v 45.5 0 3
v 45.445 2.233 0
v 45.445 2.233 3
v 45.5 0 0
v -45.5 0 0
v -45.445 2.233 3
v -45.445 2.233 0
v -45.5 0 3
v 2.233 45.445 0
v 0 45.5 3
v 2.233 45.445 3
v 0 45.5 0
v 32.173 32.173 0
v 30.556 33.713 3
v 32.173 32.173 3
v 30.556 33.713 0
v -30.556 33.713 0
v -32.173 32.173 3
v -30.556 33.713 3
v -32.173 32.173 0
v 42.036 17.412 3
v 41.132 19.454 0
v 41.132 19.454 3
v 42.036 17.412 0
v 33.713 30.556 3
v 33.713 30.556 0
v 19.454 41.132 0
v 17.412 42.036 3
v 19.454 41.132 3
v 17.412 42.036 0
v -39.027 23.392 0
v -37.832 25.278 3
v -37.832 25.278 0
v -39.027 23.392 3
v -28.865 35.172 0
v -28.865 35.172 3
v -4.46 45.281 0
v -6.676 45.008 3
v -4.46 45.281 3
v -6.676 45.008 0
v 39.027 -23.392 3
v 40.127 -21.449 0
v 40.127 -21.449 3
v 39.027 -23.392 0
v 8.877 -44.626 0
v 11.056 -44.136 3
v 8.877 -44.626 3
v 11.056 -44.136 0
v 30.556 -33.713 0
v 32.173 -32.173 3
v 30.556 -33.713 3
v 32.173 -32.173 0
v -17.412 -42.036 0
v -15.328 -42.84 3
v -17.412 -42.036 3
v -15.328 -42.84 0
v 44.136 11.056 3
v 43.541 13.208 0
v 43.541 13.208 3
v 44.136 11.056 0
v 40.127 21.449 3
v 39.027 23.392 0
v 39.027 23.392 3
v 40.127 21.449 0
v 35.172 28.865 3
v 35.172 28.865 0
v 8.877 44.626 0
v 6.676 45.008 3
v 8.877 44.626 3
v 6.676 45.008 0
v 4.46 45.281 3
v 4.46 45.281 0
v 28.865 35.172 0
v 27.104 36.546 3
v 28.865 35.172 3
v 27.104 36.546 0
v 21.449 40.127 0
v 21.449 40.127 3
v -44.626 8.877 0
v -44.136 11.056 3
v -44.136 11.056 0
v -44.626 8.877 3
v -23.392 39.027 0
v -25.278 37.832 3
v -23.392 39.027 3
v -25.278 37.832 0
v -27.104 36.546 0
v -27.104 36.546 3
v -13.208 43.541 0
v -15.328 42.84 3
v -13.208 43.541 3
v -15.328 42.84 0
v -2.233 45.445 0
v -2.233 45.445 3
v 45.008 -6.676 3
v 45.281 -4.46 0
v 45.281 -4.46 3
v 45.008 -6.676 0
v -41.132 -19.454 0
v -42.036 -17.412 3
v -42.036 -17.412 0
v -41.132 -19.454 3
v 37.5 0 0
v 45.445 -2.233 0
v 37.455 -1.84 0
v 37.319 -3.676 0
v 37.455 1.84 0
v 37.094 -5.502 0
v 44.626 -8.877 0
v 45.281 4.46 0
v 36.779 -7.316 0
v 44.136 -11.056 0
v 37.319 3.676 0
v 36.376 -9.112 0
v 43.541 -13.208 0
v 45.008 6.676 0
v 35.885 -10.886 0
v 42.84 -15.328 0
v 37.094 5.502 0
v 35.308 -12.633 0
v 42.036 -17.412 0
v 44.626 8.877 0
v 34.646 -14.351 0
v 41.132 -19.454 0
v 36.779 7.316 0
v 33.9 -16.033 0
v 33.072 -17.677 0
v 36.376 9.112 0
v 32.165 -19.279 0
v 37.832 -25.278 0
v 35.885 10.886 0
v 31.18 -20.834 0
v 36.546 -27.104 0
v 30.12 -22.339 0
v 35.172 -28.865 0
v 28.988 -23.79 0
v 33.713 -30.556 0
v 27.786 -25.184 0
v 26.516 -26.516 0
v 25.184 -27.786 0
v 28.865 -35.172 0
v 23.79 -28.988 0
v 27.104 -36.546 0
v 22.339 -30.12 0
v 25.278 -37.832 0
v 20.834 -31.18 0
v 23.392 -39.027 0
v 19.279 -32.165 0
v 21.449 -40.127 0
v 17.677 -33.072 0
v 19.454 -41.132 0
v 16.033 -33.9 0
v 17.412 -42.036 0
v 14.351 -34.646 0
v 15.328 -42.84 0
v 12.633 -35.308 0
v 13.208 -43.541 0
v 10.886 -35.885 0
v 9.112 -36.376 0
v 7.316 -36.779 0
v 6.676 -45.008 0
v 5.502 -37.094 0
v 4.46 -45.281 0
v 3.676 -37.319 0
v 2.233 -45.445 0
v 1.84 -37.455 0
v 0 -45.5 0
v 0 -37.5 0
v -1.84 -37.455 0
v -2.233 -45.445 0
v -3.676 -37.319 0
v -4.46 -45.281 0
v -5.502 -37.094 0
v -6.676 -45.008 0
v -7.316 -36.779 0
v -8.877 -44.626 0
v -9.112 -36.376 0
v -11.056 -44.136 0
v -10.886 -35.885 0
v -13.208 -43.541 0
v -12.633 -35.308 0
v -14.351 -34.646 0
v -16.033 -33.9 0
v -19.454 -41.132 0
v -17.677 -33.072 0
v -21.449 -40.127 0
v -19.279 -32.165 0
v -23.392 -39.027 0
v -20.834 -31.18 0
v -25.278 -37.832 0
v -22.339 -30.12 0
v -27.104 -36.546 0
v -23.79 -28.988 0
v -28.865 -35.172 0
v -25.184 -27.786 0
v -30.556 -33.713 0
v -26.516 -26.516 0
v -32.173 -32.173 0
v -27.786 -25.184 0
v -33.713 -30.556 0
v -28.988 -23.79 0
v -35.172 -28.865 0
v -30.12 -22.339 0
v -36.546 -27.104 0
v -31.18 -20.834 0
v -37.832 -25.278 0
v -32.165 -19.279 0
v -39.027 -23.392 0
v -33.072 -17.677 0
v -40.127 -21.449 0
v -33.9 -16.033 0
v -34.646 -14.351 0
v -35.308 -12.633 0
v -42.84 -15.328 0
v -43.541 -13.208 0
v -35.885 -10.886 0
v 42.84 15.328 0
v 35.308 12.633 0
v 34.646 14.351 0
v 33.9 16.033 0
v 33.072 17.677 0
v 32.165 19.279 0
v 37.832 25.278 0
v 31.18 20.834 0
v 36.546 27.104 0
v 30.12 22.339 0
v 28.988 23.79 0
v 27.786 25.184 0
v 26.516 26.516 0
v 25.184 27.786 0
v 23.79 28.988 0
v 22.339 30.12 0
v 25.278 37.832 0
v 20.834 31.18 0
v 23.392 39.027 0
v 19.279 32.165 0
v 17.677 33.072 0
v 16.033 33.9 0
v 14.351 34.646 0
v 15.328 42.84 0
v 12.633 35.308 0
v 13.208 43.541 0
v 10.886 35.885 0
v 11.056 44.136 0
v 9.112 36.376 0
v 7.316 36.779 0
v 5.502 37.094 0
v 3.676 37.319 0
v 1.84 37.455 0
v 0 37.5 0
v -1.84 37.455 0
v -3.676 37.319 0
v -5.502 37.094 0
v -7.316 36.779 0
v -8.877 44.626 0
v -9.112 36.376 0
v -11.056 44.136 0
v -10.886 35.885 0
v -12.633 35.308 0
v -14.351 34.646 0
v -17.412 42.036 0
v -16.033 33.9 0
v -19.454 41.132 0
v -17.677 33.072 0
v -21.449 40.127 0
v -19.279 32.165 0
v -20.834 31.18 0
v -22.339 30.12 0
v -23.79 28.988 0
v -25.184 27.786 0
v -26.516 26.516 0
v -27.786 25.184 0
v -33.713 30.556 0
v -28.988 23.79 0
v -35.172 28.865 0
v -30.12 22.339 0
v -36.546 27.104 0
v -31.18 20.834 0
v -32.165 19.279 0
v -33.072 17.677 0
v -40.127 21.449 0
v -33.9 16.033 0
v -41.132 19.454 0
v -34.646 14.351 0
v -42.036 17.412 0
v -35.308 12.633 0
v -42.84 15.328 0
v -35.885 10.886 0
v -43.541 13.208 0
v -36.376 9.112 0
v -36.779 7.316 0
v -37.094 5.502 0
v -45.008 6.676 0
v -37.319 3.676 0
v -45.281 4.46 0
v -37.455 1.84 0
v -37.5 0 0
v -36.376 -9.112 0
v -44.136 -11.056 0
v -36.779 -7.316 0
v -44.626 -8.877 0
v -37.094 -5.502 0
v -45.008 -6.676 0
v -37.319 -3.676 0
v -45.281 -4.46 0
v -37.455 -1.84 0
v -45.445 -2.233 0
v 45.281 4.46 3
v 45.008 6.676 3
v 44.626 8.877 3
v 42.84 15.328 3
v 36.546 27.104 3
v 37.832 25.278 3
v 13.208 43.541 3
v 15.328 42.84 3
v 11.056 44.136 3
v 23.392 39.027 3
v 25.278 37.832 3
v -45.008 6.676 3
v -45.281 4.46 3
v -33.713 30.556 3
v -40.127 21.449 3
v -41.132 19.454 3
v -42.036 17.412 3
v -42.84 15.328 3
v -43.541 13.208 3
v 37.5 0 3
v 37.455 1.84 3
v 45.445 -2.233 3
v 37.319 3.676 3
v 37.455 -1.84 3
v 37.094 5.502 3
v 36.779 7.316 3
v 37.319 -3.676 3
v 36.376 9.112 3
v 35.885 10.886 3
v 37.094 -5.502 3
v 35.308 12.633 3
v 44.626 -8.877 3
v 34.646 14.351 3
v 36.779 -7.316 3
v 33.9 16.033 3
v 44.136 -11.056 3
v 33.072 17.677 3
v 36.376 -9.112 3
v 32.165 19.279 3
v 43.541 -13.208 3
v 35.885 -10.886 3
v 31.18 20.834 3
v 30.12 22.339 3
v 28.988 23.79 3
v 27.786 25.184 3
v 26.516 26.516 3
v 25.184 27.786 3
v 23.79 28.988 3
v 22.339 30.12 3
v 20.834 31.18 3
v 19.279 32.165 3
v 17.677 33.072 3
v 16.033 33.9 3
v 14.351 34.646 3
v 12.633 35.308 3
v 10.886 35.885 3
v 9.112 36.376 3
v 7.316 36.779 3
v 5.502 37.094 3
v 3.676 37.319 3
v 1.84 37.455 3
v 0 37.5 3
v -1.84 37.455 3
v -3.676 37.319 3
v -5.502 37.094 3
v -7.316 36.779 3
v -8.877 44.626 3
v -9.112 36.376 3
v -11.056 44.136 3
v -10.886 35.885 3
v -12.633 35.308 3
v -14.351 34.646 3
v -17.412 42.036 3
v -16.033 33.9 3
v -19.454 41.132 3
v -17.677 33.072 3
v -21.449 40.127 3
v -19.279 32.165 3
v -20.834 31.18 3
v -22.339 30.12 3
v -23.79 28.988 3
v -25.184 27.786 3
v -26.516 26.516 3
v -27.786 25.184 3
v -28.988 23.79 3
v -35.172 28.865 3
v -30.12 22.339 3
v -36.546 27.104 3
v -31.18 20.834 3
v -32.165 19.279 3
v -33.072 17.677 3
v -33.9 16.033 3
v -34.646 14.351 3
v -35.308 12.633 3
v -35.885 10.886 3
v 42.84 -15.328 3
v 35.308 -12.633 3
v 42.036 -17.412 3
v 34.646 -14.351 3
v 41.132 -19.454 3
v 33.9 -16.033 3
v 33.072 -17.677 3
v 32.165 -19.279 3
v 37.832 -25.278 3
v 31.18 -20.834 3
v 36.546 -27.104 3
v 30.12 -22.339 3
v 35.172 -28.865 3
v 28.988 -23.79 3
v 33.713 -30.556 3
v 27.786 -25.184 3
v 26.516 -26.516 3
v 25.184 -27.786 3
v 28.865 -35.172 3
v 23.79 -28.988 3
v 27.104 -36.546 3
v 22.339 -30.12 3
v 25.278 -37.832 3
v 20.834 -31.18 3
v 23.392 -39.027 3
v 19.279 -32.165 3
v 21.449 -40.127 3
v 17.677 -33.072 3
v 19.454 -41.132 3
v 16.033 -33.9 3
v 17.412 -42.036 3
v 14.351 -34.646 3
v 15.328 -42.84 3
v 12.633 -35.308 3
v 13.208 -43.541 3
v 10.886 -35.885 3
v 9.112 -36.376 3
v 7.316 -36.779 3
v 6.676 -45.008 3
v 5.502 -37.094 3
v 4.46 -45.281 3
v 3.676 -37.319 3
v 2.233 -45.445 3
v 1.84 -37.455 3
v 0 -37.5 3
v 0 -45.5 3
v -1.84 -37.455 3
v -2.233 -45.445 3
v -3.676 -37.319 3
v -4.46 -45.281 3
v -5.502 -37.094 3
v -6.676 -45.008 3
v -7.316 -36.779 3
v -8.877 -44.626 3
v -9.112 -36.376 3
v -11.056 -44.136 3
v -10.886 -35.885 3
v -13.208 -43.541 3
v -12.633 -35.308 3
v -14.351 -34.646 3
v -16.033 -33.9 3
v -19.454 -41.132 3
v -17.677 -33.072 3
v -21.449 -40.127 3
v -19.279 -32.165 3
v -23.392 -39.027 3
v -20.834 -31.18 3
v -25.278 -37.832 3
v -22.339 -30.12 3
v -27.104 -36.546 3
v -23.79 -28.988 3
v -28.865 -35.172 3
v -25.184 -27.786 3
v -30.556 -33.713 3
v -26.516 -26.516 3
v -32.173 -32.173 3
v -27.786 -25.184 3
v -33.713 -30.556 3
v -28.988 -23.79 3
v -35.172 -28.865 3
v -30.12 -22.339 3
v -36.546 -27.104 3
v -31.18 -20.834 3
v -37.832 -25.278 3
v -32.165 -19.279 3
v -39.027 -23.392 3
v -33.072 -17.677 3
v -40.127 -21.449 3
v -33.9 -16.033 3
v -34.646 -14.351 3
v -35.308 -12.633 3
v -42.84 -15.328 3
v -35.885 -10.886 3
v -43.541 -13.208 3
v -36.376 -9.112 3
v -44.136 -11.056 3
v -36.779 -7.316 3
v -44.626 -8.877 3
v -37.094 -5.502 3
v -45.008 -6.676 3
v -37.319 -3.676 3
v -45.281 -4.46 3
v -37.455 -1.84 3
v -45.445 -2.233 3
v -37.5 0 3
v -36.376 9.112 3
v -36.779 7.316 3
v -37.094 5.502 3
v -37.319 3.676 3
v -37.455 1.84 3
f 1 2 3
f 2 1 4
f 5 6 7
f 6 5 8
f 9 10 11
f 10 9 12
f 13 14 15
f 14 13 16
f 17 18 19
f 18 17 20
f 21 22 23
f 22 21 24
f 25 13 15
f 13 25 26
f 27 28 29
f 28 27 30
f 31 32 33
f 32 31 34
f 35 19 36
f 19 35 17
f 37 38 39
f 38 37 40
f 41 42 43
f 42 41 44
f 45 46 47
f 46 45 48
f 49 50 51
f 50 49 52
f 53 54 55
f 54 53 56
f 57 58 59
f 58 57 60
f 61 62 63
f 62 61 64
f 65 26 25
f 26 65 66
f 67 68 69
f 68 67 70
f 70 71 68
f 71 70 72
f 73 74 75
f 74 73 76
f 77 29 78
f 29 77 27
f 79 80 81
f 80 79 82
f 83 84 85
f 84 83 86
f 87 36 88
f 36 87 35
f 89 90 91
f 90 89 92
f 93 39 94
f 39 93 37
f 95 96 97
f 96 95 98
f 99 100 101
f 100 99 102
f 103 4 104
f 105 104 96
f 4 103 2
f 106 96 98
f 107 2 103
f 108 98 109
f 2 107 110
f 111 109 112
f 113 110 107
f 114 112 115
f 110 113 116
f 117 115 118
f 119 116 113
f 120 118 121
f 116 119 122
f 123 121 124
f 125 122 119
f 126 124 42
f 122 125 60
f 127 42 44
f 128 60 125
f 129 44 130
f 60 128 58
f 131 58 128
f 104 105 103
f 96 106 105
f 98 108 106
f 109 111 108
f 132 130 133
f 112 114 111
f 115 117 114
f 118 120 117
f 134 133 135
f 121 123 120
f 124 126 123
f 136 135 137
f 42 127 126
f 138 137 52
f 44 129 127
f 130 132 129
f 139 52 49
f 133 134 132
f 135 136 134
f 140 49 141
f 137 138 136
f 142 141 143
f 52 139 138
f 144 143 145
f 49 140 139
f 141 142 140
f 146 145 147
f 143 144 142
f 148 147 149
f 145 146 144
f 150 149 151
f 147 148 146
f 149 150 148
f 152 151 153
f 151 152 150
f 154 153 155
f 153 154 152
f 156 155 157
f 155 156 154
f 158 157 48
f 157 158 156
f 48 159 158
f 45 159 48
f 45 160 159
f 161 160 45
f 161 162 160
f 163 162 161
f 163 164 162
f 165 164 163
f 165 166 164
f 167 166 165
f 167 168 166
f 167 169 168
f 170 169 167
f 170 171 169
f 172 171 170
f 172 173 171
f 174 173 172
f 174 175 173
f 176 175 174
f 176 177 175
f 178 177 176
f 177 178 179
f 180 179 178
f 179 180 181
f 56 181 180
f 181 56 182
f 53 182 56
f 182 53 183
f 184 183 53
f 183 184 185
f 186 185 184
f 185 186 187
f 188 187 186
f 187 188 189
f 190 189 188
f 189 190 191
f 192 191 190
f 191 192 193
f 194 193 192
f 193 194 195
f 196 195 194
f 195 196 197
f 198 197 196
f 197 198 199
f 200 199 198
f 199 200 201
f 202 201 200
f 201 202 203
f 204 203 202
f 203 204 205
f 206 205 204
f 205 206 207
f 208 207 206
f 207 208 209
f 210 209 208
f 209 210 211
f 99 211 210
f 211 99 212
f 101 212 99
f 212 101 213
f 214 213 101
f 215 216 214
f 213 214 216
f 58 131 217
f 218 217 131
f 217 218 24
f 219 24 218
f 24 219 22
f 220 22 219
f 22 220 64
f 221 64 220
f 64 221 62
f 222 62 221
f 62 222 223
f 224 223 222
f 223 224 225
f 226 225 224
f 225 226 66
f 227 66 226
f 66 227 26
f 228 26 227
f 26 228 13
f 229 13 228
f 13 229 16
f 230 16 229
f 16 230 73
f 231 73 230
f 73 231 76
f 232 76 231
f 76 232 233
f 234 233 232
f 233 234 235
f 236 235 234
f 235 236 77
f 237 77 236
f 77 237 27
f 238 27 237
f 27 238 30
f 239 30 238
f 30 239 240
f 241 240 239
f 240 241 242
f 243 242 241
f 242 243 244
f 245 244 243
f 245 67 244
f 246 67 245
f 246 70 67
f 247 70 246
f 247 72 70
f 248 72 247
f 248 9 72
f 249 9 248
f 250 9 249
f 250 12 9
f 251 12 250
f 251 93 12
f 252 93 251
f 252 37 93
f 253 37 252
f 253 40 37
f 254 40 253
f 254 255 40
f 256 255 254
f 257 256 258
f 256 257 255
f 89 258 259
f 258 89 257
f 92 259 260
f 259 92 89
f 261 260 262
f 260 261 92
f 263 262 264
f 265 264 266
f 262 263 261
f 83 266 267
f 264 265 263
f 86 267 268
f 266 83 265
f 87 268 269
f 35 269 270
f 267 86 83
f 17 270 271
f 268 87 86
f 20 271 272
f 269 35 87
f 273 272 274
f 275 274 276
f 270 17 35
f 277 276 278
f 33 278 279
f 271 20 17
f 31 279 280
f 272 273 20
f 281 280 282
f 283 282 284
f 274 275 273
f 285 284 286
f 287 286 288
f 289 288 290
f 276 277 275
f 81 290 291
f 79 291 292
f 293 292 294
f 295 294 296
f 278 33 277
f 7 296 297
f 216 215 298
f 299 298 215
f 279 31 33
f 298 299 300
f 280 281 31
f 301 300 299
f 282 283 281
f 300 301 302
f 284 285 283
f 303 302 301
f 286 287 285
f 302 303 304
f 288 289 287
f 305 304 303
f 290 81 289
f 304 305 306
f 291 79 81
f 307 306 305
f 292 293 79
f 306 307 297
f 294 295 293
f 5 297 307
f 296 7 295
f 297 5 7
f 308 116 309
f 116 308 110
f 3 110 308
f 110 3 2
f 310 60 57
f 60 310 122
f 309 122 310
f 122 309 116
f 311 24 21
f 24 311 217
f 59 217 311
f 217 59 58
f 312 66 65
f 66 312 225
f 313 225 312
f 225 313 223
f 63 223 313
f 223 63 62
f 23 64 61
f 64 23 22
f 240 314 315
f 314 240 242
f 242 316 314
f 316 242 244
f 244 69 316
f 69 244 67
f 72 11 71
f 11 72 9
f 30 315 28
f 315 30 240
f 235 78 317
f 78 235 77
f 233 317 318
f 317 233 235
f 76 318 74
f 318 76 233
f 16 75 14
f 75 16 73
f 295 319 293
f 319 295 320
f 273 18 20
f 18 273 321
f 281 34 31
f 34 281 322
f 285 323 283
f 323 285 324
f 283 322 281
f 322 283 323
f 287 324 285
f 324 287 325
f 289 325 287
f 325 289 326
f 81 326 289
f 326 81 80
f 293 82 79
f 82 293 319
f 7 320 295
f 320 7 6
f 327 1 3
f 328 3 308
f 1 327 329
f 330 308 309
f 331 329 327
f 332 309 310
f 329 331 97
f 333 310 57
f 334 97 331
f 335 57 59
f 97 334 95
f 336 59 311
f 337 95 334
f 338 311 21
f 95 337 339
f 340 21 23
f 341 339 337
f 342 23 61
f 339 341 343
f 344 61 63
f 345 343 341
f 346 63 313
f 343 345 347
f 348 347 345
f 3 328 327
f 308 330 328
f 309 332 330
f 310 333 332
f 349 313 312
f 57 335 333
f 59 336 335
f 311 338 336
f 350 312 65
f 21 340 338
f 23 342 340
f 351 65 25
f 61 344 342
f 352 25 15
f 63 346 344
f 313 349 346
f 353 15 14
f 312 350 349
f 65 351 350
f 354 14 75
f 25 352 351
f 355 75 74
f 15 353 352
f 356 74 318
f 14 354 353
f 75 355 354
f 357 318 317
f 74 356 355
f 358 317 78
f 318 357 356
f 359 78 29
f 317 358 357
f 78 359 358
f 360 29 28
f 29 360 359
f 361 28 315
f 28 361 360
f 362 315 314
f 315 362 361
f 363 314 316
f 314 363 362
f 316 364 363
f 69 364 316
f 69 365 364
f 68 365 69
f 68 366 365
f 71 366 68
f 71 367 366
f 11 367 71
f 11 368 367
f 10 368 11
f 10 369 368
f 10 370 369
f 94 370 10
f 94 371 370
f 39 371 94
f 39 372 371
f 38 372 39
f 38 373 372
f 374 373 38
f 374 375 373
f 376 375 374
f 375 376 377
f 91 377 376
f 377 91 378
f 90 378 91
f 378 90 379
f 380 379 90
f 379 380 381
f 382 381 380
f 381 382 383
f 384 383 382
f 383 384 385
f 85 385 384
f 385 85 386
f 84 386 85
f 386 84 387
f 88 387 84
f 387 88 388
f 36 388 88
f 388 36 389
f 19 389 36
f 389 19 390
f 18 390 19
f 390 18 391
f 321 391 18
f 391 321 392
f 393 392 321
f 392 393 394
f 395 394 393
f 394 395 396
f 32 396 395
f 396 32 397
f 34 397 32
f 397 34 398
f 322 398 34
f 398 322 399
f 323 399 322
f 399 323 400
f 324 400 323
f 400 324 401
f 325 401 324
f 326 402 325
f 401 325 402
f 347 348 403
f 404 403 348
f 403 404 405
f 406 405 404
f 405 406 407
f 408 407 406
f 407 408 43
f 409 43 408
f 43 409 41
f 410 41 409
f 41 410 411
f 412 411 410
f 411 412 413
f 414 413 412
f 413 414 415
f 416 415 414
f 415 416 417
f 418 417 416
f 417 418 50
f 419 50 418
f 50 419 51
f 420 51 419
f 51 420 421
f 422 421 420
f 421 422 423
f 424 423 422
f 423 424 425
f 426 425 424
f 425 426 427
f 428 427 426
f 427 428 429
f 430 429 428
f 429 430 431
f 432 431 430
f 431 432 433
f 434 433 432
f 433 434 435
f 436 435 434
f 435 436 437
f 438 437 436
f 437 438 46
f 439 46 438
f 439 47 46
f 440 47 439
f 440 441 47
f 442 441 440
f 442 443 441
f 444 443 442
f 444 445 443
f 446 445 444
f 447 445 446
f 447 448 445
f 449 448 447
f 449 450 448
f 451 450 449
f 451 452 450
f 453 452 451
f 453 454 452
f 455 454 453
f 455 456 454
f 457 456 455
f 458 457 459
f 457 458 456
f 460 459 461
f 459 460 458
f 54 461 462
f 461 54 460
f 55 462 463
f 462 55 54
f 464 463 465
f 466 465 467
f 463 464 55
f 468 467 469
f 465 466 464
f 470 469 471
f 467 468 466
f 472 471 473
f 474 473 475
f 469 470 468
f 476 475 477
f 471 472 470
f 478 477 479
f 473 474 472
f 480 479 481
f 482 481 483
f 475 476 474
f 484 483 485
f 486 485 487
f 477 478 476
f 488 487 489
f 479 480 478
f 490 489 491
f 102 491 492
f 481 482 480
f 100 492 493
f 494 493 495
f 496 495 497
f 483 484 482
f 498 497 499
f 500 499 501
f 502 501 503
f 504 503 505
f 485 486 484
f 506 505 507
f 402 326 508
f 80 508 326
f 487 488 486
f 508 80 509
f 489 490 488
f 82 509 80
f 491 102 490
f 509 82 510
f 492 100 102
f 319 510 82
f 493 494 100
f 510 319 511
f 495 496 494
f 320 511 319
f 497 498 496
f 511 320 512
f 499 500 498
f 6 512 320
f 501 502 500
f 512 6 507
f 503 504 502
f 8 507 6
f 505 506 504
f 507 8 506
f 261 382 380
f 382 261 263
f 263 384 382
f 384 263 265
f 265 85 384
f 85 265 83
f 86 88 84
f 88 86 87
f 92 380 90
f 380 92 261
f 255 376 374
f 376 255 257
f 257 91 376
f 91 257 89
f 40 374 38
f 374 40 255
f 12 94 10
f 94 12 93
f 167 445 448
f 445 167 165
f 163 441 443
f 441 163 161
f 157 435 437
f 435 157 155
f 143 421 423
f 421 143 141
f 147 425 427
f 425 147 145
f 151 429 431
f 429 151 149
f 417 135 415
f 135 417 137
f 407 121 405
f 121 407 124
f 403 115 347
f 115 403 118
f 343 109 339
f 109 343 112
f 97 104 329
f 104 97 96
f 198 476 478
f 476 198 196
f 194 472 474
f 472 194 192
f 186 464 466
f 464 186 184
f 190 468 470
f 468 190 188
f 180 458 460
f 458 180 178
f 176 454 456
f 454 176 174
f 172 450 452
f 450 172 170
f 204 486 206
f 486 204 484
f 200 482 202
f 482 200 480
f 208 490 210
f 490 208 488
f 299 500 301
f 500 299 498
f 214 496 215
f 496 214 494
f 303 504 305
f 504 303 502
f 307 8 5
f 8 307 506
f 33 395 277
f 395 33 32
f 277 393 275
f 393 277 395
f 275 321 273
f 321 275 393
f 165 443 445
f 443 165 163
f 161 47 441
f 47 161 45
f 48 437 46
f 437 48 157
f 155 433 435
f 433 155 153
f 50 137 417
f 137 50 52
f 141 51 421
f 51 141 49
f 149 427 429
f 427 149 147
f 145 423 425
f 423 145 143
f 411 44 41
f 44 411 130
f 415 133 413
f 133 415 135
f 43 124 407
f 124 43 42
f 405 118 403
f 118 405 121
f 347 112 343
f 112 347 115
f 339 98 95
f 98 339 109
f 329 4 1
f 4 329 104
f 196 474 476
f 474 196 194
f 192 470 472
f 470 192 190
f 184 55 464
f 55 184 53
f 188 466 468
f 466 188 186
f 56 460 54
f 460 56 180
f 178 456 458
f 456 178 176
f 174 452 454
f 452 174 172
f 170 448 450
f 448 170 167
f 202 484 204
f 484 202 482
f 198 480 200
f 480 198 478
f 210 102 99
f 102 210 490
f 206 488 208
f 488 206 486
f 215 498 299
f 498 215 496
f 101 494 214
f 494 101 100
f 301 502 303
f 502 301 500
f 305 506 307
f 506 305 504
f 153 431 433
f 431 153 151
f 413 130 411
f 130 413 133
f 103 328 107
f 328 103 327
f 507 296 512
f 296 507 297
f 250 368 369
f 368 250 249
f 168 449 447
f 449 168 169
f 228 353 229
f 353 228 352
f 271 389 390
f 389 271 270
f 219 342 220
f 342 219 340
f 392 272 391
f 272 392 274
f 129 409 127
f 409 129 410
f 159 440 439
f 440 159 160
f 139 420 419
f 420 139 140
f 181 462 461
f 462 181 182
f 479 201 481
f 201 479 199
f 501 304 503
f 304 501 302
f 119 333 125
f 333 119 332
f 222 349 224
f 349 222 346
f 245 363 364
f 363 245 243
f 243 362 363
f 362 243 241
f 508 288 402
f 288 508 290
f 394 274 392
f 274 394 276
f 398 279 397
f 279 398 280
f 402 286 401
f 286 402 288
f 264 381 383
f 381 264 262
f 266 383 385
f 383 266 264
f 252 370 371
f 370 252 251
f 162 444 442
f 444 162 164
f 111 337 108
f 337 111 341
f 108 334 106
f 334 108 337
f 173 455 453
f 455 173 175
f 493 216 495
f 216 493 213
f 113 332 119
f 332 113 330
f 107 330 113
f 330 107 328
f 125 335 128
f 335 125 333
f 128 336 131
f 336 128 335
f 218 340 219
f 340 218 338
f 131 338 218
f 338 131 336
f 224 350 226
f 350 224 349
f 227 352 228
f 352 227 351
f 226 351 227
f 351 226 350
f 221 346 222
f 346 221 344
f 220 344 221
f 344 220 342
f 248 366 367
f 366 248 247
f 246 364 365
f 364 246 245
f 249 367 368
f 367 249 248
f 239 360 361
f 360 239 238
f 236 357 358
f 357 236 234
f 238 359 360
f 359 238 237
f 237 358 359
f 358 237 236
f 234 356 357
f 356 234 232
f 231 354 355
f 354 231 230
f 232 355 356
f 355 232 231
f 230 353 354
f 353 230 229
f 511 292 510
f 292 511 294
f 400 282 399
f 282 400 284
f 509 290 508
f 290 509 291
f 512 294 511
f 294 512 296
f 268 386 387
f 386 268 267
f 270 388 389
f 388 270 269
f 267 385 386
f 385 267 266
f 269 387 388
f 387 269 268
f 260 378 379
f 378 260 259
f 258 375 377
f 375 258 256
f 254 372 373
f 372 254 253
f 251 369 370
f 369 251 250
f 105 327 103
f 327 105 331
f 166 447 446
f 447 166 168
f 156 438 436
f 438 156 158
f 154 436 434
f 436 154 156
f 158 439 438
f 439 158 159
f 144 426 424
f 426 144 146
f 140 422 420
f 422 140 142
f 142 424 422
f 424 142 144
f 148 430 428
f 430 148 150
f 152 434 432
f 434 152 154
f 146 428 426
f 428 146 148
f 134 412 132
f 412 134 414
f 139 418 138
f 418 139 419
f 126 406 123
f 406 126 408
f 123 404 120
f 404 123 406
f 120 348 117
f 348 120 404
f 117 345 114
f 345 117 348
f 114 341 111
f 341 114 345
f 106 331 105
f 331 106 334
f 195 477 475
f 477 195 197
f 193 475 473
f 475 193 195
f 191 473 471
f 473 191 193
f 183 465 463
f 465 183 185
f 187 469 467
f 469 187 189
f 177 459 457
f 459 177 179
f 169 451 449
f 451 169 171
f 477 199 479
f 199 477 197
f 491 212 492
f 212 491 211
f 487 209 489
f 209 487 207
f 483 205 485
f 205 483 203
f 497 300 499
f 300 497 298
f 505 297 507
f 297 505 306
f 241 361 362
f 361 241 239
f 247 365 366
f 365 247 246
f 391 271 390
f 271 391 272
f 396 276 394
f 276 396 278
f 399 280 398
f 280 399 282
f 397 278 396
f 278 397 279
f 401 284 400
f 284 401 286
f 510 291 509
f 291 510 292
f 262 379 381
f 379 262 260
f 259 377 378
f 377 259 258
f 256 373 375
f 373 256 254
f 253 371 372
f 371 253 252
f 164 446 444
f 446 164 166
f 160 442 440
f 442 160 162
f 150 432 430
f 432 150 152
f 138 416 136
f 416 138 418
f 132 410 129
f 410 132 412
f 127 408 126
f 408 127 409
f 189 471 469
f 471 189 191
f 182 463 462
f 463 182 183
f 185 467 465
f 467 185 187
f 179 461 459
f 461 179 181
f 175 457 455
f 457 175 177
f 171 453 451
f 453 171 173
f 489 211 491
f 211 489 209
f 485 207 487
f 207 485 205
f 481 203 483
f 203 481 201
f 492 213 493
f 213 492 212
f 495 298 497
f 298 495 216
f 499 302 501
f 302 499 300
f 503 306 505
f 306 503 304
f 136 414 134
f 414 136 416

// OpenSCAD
//                    _
// |\/| _  _  _  _  _|_) __  o _  __| _
// |  |(/_(_|(_|| |_>|  | (_)|(/_(_ |_>
//         _|               _|
//       www.megansprojects.com
// 
// Sun rise set light head clear cover

$fn = 128;
wall_thickness = 3;
head_inside_outer_diameter  = 88;
head_inside_inner_diameter  = 78;
head_depth = 10;

head_inside_outer_r = head_inside_outer_diameter / 2;
head_inside_inner_r = head_inside_inner_diameter / 2;

// top clear plastic ring
difference()
{
    cylinder ( wall_thickness, head_inside_outer_r + wall_thickness / 2 ,head_inside_outer_r + wall_thickness / 2 );
    cylinder ( wall_thickness, head_inside_inner_r - wall_thickness / 2 ,head_inside_inner_r - wall_thickness / 2 );
}
